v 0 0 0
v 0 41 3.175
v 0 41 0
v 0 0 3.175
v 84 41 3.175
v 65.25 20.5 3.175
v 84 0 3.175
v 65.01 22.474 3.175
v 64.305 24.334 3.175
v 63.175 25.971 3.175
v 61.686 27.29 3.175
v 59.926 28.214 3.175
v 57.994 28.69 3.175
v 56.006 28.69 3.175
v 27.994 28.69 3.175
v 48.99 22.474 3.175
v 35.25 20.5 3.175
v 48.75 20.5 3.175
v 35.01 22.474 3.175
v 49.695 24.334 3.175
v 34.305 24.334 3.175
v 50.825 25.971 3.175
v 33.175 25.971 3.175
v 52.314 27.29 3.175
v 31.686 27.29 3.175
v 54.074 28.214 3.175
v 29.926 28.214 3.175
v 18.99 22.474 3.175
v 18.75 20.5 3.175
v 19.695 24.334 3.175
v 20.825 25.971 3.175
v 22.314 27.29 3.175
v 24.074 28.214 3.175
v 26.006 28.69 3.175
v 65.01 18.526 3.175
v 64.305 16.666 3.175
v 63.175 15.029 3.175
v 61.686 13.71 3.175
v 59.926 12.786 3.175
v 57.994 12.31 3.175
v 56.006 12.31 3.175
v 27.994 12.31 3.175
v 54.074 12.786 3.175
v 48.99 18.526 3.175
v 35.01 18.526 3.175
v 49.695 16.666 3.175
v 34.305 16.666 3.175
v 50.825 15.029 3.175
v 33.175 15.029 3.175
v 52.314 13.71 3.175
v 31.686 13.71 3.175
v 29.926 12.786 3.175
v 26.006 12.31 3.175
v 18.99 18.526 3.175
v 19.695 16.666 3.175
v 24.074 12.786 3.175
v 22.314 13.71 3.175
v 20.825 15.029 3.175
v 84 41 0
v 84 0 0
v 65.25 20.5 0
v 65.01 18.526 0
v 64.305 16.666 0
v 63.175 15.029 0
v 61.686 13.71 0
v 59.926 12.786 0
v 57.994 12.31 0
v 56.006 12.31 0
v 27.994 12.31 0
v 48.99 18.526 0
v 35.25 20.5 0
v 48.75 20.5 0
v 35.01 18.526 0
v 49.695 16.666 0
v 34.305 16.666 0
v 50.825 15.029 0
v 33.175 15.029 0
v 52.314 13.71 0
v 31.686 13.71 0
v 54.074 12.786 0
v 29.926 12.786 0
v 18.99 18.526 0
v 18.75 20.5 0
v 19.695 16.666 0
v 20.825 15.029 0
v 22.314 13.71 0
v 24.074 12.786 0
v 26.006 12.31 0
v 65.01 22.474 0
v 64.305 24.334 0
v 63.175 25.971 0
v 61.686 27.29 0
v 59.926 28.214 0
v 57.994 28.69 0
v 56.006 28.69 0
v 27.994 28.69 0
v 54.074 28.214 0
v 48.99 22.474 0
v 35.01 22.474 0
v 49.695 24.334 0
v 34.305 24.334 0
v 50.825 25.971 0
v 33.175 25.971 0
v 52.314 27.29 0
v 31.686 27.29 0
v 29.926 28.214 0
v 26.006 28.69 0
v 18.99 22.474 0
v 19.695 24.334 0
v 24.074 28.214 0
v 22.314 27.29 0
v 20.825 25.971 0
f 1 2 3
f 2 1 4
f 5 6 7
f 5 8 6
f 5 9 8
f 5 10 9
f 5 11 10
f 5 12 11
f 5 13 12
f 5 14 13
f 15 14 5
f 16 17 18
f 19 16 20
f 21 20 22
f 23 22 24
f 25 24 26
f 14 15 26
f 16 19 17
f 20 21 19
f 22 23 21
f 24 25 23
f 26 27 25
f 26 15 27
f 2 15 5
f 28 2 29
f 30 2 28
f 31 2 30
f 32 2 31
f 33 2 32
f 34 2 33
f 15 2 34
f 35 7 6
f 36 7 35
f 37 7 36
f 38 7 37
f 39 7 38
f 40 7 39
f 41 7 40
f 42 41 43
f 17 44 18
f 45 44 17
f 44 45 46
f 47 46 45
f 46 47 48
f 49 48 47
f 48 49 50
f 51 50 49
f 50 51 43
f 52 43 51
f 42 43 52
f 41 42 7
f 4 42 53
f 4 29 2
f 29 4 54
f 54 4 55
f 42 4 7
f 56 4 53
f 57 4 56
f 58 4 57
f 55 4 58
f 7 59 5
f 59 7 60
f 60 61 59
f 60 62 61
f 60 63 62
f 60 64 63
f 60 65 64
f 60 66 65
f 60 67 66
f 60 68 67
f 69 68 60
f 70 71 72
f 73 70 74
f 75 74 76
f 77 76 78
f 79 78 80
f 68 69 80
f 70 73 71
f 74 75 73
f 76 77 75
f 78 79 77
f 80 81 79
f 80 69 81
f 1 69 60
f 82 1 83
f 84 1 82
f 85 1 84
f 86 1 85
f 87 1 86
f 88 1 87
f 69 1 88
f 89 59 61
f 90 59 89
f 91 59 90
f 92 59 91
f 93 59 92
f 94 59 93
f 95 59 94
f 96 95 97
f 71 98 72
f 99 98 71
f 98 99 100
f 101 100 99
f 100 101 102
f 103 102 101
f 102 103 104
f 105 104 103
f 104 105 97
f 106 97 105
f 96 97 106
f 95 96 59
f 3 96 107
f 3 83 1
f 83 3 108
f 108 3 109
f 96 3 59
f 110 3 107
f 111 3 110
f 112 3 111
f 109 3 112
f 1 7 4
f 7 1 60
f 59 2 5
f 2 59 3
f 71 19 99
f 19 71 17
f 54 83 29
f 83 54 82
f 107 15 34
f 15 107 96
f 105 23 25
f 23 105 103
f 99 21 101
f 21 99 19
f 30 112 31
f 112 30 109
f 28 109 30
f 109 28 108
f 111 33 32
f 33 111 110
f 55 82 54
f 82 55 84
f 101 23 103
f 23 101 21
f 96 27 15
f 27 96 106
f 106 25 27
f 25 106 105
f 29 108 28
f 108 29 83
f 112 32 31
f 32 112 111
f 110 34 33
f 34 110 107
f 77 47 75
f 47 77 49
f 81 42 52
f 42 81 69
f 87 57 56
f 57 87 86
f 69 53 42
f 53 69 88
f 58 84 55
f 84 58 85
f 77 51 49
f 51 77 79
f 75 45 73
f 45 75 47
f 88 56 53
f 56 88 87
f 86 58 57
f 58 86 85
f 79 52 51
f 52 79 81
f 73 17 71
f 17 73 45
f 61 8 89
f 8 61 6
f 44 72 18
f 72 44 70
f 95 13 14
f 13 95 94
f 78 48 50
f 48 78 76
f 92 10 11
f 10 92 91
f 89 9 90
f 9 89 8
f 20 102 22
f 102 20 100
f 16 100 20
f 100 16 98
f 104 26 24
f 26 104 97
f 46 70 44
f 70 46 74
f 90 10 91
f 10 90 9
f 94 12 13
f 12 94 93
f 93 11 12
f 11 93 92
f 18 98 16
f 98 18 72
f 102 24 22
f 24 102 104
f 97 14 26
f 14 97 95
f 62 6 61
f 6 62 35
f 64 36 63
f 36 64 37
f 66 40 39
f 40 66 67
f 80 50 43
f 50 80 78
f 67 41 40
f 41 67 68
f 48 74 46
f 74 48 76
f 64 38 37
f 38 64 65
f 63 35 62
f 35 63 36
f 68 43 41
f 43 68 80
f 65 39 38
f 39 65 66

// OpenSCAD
leftOffset = 15;
bottomOffset = 11.5;
switchWidth = 24;
switchHeight = 18;
switchVgap = 6;
switchHgap = 6;
holeRadius = 16.5/2;

/*
 * Panel needs to be wide enough for 2 switches side-by-side.
 * It also has to be wide enough for the width of the circuit
 * board that's going to mount behind it.  The Rev 2 board is
 * about 82.5 mm wide.  The formula below ends up at 84 mm.
 */
panelWidth = leftOffset + switchWidth + switchHgap + switchWidth + leftOffset;
panelHeight = bottomOffset + switchHeight + bottomOffset;
panelThickness = 3.175;

module hole(row, column) {
    /* Round Holes */
    xLoc = leftOffset + (row * (switchWidth + switchHgap)) + (switchWidth / 2);
    yLoc = bottomOffset + (column * (switchHeight + switchVgap)) + (switchHeight / 2);
    translate ([xLoc, yLoc, -2]) cylinder(6, holeRadius, holeRadius, false);    
}

difference() {
    cube ([panelWidth, panelHeight, panelThickness]);
    hole(0, 0);
    hole(1, 0);
}
